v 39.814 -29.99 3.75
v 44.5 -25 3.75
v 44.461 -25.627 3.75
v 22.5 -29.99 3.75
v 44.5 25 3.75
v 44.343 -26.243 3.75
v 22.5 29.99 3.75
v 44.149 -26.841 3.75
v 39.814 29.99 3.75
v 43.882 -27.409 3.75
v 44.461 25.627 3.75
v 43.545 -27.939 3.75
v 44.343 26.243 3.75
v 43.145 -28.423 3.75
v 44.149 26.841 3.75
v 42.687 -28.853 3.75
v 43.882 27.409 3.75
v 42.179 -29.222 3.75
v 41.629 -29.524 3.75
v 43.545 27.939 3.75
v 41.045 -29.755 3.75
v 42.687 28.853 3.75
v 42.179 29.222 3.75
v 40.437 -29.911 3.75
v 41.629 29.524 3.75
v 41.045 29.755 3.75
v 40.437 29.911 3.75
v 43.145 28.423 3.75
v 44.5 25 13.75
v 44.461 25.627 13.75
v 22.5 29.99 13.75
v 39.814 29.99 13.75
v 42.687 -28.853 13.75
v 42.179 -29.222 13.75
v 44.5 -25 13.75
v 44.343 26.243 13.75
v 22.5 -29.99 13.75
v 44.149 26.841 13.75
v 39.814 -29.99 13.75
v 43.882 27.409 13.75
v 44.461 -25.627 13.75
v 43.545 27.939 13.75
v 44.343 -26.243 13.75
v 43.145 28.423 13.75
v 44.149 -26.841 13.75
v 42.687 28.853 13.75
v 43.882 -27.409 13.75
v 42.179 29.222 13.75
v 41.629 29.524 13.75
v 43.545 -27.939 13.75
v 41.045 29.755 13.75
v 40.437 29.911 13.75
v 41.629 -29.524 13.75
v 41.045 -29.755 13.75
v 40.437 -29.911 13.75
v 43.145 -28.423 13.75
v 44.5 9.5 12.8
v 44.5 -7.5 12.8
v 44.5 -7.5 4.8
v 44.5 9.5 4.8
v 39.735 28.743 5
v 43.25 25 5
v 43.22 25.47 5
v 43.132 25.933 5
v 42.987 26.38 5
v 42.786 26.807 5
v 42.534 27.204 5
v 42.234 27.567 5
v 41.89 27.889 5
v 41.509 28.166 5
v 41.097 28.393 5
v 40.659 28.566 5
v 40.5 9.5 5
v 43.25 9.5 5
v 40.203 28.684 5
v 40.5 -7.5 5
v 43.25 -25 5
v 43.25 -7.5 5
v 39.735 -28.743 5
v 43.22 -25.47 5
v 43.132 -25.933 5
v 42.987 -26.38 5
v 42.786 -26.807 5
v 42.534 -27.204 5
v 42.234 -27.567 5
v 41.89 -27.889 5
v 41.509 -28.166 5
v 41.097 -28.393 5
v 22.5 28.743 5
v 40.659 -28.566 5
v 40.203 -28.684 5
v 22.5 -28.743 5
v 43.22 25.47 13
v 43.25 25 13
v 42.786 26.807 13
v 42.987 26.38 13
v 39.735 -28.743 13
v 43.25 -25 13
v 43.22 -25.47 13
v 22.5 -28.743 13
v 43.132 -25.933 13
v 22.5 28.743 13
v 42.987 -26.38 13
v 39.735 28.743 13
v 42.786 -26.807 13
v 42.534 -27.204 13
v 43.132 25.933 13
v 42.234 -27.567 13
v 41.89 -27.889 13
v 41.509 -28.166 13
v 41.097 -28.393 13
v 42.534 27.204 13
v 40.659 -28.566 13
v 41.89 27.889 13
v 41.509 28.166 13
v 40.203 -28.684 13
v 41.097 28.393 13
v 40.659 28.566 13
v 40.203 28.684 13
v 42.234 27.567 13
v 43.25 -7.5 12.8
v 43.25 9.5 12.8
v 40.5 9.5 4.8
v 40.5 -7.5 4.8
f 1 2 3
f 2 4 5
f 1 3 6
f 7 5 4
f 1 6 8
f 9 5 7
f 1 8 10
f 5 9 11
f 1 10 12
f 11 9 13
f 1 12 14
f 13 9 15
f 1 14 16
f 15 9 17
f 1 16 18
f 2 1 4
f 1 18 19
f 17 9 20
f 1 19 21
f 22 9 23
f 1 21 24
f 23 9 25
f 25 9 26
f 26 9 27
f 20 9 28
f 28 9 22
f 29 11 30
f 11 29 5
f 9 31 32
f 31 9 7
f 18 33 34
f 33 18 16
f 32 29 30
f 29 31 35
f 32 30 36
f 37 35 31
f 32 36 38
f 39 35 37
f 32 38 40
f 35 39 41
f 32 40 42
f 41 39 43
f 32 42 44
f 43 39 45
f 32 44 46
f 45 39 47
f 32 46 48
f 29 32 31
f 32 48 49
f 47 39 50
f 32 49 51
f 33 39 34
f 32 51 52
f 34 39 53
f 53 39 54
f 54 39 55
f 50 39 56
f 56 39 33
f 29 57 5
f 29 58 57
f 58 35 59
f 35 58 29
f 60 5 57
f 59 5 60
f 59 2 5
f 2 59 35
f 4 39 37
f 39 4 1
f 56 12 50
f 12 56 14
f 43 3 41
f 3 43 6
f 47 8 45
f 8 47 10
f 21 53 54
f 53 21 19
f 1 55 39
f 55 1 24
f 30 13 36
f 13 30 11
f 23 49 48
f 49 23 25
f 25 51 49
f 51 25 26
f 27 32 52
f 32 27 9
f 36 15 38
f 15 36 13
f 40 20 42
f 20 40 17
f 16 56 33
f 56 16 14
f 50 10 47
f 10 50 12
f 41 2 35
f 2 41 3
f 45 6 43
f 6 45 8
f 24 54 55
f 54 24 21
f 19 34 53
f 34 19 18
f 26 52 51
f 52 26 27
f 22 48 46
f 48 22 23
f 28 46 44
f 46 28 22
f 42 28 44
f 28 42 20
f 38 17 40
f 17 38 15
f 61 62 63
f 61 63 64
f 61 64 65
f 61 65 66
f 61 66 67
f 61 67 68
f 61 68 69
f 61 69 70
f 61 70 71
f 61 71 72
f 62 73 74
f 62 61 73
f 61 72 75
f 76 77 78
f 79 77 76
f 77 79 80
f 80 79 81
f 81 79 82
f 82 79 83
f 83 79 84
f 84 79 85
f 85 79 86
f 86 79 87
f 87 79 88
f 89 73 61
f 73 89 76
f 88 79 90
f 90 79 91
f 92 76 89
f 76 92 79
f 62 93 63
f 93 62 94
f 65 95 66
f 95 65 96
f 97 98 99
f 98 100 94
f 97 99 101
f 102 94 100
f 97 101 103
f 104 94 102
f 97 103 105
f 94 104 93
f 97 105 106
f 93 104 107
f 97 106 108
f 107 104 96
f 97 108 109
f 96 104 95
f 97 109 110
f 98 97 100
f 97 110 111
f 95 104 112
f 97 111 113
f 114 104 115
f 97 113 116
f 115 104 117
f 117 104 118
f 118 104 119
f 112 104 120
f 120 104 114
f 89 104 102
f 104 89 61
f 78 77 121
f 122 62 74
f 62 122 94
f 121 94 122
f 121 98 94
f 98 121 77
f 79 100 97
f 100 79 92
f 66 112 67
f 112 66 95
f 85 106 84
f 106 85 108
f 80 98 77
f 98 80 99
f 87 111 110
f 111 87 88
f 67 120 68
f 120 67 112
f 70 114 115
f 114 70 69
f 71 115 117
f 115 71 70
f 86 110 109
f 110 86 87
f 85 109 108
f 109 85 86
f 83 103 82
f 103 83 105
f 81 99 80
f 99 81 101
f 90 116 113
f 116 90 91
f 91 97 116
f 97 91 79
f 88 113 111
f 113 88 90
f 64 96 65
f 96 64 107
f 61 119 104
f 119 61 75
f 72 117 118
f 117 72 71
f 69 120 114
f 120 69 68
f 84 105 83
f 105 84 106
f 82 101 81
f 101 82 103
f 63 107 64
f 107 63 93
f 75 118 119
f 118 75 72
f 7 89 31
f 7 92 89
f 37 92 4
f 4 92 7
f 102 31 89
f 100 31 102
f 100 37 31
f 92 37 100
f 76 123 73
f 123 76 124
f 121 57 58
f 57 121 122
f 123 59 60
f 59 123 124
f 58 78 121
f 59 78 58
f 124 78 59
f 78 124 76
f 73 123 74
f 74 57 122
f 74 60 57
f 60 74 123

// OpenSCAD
//===========================================================================
//
// PiPro Pi Case designed to mimic the 2019 Mac Pro look.
// derived from PrusaPi Pi case for Prusa MK3 https: 
//
// This part was originally designed 24 November 2017 by Joe McKeown. 
// and updated 22 June 2019.
// It's available under the terms of the Creative Commons CC-BY license 
// (https://creativecommons.org/licenses/by/3.0/).
// 
// History:
// V1.0 24 NOV 2017 First version
// v2.0 22 JUN 2019 Revised to look like Mac Pro and Not attach to Prusa
//===========================================================================

//Adapted by Jordan Knight to be a external ssd shelf for the Pi 4. 



sqrt3=sqrt(3);

cheese_r=5;//4;


epsilon=0.01;
baseGap=3.25;
PCBThick=1.3;
baseThick=1.25;
totalHeight=21.5;//20.2;
baseHeight=15;
bracketOffset=65; 

PCBBase=baseGap+PCBThick;

BoardSize=[85,56];
 
module outline(r=3){   
   hull()
   for (point=[[3,3],[3,53],[82,3],[82,53]]){
     translate(point) circle(r, $fn=50);
   }
 }



module USBSlotB(centerY){
  //height is 16;
  JackWidth=17;
  translate([BoardSize[0]-2, centerY-(JackWidth/2), PCBBase-3.5])
  cube([10, JackWidth, 8]);
}


module bottomShell() {
  
  difference(){
    linear_extrude(baseHeight -5) outline(5);
    translate([0,0,baseThick]) 
      linear_extrude(baseHeight - 7) outline(3.75); 
    //translate([0,0,-1]) 
     // linear_extrude(baseHeight + 10) outline(3.75);
    translate([-15,-10,-3])
      cube([80, 80, 40]);
 
    
    USBSlotB(29);
    
 
  }
}

module base() {
    $fn=10;

    difference(){
        union(){           
            translate([0,0, cheese_r-1.25 ])
                union(){
                    bottomShell();           
                }
        }
       
    }
    
}

translate([-BoardSize[0]/2,-BoardSize[1]/2,0])
base();
